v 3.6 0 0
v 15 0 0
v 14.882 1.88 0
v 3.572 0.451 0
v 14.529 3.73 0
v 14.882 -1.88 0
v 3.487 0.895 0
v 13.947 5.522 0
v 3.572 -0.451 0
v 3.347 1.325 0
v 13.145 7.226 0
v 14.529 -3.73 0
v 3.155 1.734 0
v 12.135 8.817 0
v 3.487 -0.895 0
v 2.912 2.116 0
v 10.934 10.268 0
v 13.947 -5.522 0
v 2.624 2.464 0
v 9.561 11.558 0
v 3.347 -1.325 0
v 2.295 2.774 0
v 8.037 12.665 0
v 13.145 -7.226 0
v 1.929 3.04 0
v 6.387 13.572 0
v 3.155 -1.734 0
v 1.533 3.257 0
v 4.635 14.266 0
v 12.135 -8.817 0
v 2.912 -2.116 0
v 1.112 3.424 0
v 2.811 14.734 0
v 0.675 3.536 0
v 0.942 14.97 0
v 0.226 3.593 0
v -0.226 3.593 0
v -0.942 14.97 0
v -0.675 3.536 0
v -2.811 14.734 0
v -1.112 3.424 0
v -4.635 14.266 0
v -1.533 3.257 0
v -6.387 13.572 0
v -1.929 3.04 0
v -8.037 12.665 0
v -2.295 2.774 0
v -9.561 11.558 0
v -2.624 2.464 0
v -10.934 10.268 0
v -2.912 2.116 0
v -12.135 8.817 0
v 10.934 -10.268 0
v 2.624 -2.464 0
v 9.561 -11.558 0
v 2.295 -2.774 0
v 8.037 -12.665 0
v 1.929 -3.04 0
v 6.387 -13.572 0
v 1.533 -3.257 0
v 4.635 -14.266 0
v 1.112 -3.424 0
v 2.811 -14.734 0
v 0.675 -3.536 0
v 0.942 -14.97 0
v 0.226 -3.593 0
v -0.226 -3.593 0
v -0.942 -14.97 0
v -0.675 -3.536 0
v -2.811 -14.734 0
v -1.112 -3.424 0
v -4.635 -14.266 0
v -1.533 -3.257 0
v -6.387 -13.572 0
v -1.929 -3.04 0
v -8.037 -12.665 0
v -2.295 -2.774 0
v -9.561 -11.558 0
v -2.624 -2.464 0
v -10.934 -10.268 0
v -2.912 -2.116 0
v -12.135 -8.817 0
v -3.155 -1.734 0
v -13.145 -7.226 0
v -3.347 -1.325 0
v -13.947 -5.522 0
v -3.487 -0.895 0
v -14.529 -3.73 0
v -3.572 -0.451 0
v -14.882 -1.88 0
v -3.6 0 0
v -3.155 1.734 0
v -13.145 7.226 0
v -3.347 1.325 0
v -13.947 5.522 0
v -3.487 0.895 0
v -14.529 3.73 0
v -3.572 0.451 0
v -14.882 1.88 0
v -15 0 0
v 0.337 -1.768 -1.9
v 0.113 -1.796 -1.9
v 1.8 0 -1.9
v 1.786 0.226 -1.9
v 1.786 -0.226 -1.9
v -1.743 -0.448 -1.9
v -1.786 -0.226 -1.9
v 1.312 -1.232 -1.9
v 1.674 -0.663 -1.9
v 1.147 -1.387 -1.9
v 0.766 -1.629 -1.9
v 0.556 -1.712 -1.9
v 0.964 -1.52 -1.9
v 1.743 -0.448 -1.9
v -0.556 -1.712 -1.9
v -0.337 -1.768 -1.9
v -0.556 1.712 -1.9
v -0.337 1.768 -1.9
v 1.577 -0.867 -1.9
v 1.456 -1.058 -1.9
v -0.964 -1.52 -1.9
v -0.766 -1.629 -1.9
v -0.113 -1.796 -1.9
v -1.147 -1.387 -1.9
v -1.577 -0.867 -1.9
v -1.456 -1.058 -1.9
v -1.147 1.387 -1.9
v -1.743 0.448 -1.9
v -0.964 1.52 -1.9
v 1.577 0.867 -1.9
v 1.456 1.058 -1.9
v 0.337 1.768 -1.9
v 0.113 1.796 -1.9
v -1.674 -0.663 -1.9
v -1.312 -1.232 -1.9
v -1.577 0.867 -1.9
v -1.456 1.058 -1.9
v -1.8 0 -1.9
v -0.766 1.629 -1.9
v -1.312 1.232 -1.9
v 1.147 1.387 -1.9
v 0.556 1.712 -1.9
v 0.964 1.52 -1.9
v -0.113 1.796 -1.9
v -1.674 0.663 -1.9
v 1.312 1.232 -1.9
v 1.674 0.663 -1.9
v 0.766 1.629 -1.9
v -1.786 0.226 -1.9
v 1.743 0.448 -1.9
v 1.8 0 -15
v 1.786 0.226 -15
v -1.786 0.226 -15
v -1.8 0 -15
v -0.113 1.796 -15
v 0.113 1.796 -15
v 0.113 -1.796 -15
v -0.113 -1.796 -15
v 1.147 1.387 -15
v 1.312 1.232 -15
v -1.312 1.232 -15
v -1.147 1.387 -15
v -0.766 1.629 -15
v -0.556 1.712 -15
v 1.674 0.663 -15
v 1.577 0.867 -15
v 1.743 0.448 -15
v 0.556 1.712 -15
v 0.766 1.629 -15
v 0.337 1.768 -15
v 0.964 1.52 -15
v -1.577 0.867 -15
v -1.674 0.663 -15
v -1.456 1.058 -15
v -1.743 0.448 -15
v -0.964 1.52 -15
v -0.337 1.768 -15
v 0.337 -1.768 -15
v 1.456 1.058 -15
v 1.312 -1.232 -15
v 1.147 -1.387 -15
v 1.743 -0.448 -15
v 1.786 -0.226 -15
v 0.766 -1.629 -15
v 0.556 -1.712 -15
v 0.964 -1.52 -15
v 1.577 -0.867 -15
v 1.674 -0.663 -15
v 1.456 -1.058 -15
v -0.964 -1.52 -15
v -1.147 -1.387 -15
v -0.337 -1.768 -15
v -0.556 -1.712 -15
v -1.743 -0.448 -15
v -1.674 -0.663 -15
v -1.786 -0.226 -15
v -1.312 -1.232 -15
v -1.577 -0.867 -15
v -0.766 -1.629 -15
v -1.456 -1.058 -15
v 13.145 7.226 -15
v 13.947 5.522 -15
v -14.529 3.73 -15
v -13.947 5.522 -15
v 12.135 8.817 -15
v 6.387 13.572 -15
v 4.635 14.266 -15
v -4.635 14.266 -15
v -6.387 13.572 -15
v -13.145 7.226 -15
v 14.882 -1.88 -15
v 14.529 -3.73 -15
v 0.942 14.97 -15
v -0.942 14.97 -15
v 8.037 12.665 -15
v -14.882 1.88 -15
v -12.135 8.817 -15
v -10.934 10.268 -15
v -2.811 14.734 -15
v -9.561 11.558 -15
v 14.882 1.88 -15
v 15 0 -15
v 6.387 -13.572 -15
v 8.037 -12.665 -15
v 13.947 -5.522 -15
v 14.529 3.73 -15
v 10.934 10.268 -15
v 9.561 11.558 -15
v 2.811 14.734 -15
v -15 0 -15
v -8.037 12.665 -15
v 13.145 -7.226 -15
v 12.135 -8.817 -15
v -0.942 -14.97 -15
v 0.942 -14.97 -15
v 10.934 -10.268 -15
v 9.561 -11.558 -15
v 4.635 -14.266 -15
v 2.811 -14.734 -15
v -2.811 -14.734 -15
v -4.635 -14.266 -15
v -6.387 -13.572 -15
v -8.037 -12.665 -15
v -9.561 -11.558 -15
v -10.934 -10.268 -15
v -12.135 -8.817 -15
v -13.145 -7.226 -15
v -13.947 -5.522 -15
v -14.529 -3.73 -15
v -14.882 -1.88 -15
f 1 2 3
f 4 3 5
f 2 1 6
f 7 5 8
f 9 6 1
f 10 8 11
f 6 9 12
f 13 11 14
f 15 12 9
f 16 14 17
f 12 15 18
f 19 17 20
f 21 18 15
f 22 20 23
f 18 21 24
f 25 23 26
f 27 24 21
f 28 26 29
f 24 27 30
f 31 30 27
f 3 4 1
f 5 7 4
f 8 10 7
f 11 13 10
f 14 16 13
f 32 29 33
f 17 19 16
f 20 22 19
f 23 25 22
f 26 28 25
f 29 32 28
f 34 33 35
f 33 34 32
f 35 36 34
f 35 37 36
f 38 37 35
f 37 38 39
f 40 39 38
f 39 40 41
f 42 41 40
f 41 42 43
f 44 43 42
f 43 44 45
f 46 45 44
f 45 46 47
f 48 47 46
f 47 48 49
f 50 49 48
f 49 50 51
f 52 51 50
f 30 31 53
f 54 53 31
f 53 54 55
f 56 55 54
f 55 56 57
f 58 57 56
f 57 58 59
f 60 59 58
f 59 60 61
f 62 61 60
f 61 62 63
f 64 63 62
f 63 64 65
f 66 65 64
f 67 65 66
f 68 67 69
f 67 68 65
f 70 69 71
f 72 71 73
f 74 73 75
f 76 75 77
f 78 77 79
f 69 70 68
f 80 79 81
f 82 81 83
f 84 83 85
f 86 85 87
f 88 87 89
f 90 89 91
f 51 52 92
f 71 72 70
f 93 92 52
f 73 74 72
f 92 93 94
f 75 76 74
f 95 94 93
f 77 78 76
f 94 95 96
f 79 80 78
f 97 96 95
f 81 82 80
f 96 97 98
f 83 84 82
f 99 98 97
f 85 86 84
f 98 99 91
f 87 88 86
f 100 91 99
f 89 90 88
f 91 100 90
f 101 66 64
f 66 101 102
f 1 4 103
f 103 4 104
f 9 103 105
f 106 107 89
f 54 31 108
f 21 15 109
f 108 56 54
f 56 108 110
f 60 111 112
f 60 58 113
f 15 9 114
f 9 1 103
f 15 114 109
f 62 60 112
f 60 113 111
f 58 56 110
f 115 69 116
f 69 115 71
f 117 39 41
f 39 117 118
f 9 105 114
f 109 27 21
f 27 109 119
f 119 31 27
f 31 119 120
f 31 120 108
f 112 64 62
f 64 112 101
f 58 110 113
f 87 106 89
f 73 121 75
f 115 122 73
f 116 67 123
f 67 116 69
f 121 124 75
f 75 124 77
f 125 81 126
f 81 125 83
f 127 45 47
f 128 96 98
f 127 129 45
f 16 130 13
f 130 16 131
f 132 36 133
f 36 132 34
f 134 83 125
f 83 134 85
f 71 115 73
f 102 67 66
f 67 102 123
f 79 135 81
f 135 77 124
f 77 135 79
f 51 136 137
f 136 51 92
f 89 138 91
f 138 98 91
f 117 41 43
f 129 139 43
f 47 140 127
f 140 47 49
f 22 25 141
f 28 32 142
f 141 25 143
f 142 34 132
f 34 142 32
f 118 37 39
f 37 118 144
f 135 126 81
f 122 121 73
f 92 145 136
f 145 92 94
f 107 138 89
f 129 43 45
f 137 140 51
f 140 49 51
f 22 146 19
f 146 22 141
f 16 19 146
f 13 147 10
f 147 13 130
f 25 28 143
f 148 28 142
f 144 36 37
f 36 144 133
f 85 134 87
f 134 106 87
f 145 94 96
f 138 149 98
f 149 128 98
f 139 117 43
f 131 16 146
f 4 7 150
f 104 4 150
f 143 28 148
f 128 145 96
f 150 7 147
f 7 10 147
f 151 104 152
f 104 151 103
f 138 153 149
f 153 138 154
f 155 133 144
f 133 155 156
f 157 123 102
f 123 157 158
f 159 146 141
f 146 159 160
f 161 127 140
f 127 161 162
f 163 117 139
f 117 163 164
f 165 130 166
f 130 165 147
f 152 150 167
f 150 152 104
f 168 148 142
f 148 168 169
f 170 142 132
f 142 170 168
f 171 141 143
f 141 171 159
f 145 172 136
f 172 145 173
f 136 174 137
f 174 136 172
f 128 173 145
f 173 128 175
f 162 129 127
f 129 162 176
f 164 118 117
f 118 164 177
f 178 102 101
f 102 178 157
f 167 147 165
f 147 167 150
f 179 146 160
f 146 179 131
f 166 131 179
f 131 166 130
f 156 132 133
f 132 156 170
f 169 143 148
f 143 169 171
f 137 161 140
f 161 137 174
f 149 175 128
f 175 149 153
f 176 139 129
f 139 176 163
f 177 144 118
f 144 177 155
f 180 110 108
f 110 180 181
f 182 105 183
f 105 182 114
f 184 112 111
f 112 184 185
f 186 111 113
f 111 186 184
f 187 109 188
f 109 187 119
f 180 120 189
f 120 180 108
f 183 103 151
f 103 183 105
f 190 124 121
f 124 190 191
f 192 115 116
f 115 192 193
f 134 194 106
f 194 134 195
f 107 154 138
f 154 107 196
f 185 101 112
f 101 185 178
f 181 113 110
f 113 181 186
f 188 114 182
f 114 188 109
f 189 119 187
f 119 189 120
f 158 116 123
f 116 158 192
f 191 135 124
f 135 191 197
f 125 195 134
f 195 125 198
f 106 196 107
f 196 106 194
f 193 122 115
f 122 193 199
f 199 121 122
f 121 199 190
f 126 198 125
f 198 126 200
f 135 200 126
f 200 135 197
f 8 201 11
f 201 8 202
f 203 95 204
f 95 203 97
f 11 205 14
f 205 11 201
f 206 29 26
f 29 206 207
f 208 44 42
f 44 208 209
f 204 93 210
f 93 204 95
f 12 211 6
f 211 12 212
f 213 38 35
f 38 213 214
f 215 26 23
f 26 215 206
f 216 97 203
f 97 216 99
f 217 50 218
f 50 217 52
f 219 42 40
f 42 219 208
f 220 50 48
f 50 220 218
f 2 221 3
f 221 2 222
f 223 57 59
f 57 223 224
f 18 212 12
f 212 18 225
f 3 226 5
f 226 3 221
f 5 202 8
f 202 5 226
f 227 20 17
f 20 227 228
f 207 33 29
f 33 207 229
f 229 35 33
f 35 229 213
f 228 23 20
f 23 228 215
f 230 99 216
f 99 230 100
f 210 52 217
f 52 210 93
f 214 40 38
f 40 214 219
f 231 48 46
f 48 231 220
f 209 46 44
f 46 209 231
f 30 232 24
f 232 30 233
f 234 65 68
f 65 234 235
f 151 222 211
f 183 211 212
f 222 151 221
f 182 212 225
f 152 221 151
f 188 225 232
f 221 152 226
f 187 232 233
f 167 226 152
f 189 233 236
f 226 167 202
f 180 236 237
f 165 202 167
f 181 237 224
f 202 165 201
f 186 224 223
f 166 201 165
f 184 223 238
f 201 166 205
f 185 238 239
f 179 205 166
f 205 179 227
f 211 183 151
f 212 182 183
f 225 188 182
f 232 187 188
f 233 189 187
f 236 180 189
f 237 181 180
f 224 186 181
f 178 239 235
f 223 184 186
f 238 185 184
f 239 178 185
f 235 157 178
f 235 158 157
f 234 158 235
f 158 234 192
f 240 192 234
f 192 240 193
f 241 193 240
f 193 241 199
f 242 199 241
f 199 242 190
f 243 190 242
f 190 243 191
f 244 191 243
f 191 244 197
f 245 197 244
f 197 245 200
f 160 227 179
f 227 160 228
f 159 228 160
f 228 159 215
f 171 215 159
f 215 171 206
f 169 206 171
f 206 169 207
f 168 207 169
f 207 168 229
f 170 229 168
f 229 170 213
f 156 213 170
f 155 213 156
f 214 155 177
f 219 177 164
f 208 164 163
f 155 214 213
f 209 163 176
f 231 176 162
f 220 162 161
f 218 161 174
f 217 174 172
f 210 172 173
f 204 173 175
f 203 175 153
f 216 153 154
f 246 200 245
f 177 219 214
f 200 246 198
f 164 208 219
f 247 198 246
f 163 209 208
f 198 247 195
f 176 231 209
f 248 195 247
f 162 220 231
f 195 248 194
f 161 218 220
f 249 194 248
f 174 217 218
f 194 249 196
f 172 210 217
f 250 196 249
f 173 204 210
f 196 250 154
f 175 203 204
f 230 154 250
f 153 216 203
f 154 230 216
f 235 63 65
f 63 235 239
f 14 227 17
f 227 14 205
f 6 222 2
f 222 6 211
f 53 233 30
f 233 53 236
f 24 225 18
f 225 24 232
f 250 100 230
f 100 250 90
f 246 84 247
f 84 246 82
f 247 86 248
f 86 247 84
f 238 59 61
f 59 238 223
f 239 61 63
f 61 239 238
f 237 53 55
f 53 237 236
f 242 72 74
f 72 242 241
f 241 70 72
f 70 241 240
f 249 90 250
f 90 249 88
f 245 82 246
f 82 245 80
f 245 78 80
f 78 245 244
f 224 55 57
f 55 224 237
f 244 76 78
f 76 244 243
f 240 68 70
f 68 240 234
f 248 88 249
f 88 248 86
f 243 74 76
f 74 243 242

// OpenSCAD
$fn = 50;

difference() {
	union() {
		translate(v = [0, 0, -15.0]) {
			cylinder(h = 15, r = 15.0);
		}
	}
	union() {
		translate(v = [0, 0, 0]) {
			rotate(a = [0, 0, 0]) {
				difference() {
					union() {
						translate(v = [0, 0, -18.0]) {
							cylinder(h = 18, r = 1.5);
						}
						translate(v = [0, 0, -1.9]) {
							cylinder(h = 1.9, r1 = 1.8, r2 = 3.6);
						}
						translate(v = [0, 0, -18.0]) {
							cylinder(h = 18, r = 1.8);
						}
						translate(v = [0, 0, -18.0]) {
							cylinder(h = 18, r = 1.5);
						}
					}
					union();
				}
			}
		}
	}
}
